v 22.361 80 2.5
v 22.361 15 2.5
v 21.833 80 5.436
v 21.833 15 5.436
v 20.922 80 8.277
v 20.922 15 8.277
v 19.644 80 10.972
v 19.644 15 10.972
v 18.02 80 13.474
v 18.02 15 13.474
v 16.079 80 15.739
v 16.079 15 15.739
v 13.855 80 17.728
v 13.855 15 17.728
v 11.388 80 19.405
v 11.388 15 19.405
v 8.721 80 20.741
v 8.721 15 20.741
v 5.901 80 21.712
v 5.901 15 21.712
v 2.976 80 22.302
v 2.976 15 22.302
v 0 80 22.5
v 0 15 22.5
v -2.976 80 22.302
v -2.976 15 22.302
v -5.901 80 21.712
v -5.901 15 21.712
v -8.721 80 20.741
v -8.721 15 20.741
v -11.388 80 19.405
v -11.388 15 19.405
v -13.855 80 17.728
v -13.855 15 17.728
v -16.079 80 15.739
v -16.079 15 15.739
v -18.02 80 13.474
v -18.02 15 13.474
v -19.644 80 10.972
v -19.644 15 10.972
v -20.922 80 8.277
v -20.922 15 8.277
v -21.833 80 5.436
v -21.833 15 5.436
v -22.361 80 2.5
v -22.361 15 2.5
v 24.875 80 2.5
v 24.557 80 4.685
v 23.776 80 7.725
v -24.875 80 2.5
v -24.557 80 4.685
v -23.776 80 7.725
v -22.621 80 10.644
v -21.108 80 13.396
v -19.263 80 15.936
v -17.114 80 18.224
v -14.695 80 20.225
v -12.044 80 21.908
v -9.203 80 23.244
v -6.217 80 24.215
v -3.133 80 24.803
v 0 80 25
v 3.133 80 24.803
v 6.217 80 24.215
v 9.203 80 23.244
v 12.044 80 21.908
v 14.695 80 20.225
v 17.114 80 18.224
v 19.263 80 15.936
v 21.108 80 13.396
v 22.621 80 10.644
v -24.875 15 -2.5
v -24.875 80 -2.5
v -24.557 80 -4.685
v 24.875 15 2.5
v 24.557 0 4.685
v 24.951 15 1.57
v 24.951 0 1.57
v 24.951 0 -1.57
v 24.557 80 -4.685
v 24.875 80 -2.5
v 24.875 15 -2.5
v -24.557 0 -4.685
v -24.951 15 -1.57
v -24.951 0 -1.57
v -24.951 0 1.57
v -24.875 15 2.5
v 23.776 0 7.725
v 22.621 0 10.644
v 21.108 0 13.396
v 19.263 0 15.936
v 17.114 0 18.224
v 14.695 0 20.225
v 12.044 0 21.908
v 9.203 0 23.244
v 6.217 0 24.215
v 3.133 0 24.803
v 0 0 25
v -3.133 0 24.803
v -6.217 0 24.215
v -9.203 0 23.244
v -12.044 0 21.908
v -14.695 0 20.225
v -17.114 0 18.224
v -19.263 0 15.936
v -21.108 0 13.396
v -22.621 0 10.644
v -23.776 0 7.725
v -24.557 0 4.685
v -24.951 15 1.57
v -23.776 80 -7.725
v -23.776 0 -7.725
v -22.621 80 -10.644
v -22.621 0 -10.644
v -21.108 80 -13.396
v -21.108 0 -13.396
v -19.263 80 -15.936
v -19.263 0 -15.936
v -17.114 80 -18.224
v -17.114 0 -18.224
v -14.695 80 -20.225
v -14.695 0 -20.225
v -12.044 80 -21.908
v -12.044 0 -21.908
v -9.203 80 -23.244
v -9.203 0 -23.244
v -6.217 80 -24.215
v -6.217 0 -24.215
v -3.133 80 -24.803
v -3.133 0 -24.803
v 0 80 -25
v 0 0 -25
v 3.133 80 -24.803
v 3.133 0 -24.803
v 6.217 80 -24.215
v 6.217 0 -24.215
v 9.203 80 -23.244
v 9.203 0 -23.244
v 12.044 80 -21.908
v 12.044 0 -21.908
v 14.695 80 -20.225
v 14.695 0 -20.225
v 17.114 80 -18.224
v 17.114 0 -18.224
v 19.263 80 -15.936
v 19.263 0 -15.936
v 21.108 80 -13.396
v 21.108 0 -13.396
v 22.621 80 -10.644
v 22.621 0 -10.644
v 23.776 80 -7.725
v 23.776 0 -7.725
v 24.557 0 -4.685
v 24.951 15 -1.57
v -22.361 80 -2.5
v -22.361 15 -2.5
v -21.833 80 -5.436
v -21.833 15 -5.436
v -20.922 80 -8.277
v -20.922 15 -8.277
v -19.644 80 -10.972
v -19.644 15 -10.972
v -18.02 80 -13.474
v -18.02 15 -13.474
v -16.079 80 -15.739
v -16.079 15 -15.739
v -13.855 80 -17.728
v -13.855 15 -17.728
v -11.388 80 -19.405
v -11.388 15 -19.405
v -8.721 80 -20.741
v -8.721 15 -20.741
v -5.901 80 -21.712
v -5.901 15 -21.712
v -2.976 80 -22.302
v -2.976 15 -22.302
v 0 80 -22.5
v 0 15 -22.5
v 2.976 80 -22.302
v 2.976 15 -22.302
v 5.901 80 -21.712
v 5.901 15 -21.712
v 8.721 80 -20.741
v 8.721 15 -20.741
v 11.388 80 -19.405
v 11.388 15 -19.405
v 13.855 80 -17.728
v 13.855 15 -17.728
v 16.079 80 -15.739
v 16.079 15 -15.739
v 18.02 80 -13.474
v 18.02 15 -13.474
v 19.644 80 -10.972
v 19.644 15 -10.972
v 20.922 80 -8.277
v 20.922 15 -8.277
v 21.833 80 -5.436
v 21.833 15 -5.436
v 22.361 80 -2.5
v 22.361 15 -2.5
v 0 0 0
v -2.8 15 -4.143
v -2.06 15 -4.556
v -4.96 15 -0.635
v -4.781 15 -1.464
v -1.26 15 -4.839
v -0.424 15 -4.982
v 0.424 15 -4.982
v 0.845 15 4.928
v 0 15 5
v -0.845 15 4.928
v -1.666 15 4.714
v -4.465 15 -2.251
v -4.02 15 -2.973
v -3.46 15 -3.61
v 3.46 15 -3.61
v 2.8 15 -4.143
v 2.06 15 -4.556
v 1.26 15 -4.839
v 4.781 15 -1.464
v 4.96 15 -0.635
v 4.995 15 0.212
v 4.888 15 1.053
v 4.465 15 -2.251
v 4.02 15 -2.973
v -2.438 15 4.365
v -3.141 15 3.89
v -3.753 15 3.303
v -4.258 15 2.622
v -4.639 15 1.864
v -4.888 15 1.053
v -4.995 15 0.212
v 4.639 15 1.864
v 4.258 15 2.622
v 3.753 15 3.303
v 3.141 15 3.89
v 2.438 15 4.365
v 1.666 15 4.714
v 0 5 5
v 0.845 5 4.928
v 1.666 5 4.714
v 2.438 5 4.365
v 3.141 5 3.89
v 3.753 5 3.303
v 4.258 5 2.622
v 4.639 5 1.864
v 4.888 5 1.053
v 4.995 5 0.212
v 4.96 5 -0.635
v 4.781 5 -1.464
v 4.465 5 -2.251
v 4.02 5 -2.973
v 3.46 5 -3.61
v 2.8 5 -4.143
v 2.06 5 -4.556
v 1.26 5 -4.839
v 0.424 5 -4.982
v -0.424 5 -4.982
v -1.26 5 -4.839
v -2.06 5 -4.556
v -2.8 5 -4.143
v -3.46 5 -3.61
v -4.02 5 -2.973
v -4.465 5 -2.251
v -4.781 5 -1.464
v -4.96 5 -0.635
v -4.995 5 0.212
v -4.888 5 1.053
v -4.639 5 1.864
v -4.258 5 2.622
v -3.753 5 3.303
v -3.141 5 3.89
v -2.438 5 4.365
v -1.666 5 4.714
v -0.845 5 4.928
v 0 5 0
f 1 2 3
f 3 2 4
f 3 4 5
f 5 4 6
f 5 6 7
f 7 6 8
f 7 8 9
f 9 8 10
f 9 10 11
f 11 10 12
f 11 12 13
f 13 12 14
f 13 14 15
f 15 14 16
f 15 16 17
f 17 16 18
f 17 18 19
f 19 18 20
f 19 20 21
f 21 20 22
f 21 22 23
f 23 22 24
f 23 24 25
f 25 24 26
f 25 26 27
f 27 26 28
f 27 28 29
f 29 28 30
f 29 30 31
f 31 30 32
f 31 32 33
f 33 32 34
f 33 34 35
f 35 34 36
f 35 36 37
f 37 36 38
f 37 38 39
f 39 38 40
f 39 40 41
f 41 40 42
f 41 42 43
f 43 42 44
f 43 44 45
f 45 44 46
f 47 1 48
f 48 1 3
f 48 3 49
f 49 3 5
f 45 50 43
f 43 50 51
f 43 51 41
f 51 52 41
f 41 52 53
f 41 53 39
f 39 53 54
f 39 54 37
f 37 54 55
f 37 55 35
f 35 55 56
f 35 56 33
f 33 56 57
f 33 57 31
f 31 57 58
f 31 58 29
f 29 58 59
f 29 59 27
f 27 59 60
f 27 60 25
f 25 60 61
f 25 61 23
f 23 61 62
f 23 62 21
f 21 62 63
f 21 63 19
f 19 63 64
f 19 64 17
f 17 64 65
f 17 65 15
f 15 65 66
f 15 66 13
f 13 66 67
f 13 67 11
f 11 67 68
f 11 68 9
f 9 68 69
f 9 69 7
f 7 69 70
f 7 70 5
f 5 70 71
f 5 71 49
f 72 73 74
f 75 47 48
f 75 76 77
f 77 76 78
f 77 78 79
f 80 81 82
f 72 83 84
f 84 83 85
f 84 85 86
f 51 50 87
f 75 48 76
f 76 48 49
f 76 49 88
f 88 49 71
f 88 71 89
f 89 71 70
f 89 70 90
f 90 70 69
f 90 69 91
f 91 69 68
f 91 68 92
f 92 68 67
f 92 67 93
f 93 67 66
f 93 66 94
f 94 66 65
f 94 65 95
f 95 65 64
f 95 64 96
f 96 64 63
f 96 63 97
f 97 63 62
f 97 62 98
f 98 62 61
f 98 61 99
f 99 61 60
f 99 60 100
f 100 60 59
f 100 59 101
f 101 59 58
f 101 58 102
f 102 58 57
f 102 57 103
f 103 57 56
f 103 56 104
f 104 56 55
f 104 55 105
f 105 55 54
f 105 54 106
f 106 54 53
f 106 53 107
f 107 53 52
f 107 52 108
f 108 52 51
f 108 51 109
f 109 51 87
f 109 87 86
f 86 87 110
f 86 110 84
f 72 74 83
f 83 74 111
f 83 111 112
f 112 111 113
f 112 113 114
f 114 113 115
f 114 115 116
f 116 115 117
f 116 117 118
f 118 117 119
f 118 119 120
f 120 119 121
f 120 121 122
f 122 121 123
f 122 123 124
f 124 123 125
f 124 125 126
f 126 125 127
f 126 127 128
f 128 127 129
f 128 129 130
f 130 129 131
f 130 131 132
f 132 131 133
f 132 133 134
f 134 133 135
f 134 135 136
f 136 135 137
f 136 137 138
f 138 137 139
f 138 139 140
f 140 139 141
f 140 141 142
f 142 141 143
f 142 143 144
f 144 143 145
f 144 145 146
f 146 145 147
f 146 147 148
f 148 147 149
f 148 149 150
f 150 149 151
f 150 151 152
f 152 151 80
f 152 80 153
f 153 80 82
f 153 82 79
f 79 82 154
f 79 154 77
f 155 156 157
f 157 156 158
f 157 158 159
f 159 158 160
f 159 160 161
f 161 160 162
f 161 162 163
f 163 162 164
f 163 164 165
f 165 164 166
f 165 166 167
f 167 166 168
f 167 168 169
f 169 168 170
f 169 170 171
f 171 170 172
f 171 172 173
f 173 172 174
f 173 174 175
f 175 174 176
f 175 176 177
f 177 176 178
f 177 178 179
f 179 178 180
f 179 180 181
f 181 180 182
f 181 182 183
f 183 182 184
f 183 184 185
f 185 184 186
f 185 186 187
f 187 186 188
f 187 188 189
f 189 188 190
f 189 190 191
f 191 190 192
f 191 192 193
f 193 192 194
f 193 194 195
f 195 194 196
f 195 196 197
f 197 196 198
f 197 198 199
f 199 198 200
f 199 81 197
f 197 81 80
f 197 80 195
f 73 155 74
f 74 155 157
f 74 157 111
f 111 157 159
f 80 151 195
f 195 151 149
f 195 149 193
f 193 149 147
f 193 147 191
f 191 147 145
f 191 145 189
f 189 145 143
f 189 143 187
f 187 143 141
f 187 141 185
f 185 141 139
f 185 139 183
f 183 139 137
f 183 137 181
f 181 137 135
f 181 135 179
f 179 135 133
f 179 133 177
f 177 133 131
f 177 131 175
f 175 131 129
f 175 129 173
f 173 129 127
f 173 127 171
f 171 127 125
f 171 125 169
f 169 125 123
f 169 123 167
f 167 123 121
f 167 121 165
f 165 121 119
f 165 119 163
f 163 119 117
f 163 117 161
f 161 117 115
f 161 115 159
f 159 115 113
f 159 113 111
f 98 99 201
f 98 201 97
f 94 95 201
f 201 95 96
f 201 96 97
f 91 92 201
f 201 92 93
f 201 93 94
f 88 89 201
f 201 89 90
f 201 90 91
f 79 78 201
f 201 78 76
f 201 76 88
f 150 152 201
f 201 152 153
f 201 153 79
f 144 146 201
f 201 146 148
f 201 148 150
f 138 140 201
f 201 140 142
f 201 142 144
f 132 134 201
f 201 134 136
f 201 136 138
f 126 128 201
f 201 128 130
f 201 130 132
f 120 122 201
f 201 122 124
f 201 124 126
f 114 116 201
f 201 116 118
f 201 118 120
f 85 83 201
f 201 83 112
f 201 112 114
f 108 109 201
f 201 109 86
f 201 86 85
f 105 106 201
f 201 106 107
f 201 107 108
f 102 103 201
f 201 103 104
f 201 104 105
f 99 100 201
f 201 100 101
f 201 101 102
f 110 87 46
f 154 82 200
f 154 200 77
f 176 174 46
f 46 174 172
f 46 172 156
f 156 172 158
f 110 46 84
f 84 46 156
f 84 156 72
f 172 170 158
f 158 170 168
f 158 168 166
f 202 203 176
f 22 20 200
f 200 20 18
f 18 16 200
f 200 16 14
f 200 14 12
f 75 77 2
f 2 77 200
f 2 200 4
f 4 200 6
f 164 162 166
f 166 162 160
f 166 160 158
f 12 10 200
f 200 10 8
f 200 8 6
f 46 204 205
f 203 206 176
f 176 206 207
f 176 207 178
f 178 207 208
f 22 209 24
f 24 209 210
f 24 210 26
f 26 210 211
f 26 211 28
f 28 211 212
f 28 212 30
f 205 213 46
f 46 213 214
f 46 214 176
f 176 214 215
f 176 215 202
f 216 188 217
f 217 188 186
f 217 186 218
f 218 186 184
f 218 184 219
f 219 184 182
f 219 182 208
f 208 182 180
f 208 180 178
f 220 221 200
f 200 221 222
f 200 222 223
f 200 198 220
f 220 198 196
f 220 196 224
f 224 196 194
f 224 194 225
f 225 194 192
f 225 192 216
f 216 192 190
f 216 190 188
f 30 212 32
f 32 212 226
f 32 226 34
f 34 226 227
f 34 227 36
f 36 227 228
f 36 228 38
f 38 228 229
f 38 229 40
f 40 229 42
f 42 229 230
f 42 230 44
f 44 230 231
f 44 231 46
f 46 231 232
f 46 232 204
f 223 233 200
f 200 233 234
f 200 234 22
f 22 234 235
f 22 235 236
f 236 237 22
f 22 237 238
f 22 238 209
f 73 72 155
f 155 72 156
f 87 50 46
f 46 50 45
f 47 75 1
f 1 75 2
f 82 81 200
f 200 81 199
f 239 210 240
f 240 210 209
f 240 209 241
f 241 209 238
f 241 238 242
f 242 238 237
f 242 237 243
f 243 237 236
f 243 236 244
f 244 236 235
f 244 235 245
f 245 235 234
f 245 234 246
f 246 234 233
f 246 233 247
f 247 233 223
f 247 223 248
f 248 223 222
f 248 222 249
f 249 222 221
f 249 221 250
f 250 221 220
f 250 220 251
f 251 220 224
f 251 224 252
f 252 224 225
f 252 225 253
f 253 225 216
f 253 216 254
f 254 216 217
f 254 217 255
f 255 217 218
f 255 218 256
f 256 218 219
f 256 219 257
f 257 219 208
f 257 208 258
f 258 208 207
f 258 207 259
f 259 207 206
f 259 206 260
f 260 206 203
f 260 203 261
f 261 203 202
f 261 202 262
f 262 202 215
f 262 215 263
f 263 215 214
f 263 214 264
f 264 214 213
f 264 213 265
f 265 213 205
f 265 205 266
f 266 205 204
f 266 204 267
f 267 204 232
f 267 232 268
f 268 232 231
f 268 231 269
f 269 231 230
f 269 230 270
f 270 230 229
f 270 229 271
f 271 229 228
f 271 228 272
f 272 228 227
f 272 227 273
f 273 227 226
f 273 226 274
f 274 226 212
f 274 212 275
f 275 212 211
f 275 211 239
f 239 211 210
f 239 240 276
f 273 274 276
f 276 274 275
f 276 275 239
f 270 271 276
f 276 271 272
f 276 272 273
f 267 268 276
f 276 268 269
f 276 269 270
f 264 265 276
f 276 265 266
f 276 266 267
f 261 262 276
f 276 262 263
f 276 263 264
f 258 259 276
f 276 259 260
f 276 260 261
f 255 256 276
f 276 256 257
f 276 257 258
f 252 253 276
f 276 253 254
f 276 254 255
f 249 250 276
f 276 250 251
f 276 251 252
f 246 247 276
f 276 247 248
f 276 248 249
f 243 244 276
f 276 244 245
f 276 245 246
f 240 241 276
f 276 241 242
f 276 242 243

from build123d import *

# Parameters (mm, degrees)
SKETCH1_R           = 25
SKETCH1_R_2         = 22.5
BOSS_EXTRUDE1_DEPTH = 80
SKETCH2_R           = 25
BOSS_EXTRUDE2_DEPTH = 15
SKETCH3_W           = 50
SKETCH3_H           = 5
CUT_EXTRUDE1_DEPTH  = 65
SKETCH4_R           = 5
CUT_EXTRUDE2_DEPTH  = 10


with BuildPart() as part:
    # Sketch1 → Boss-Extrude1 (new body)
    with BuildSketch(Plane(origin=(0, 0, 0), x_dir=(1, 0, 0), z_dir=(0, 1, 0))):
        Circle(SKETCH1_R)
        Circle(SKETCH1_R_2, mode=Mode.SUBTRACT)
    extrude(amount=BOSS_EXTRUDE1_DEPTH)

    # Sketch2 → Boss-Extrude2 (add)
    with BuildSketch(Plane.XZ):
        Circle(SKETCH2_R)
    extrude(amount=-BOSS_EXTRUDE2_DEPTH)

    # Sketch3 → Cut-Extrude1 (cut)
    with BuildSketch(Plane(origin=(0, 80, 0), x_dir=(1, 0, 0), z_dir=(0, 1, 0))):
        Rectangle(SKETCH3_W, SKETCH3_H)
    extrude(amount=-CUT_EXTRUDE1_DEPTH, mode=Mode.SUBTRACT)

    # Sketch4 → Cut-Extrude2 (cut)
    with BuildSketch(Plane(origin=(0, 15, 0), x_dir=(1, 0, 0), z_dir=(0, 1, 0))):
        Circle(SKETCH4_R)
    extrude(amount=-CUT_EXTRUDE2_DEPTH, mode=Mode.SUBTRACT)


solid = part.part
